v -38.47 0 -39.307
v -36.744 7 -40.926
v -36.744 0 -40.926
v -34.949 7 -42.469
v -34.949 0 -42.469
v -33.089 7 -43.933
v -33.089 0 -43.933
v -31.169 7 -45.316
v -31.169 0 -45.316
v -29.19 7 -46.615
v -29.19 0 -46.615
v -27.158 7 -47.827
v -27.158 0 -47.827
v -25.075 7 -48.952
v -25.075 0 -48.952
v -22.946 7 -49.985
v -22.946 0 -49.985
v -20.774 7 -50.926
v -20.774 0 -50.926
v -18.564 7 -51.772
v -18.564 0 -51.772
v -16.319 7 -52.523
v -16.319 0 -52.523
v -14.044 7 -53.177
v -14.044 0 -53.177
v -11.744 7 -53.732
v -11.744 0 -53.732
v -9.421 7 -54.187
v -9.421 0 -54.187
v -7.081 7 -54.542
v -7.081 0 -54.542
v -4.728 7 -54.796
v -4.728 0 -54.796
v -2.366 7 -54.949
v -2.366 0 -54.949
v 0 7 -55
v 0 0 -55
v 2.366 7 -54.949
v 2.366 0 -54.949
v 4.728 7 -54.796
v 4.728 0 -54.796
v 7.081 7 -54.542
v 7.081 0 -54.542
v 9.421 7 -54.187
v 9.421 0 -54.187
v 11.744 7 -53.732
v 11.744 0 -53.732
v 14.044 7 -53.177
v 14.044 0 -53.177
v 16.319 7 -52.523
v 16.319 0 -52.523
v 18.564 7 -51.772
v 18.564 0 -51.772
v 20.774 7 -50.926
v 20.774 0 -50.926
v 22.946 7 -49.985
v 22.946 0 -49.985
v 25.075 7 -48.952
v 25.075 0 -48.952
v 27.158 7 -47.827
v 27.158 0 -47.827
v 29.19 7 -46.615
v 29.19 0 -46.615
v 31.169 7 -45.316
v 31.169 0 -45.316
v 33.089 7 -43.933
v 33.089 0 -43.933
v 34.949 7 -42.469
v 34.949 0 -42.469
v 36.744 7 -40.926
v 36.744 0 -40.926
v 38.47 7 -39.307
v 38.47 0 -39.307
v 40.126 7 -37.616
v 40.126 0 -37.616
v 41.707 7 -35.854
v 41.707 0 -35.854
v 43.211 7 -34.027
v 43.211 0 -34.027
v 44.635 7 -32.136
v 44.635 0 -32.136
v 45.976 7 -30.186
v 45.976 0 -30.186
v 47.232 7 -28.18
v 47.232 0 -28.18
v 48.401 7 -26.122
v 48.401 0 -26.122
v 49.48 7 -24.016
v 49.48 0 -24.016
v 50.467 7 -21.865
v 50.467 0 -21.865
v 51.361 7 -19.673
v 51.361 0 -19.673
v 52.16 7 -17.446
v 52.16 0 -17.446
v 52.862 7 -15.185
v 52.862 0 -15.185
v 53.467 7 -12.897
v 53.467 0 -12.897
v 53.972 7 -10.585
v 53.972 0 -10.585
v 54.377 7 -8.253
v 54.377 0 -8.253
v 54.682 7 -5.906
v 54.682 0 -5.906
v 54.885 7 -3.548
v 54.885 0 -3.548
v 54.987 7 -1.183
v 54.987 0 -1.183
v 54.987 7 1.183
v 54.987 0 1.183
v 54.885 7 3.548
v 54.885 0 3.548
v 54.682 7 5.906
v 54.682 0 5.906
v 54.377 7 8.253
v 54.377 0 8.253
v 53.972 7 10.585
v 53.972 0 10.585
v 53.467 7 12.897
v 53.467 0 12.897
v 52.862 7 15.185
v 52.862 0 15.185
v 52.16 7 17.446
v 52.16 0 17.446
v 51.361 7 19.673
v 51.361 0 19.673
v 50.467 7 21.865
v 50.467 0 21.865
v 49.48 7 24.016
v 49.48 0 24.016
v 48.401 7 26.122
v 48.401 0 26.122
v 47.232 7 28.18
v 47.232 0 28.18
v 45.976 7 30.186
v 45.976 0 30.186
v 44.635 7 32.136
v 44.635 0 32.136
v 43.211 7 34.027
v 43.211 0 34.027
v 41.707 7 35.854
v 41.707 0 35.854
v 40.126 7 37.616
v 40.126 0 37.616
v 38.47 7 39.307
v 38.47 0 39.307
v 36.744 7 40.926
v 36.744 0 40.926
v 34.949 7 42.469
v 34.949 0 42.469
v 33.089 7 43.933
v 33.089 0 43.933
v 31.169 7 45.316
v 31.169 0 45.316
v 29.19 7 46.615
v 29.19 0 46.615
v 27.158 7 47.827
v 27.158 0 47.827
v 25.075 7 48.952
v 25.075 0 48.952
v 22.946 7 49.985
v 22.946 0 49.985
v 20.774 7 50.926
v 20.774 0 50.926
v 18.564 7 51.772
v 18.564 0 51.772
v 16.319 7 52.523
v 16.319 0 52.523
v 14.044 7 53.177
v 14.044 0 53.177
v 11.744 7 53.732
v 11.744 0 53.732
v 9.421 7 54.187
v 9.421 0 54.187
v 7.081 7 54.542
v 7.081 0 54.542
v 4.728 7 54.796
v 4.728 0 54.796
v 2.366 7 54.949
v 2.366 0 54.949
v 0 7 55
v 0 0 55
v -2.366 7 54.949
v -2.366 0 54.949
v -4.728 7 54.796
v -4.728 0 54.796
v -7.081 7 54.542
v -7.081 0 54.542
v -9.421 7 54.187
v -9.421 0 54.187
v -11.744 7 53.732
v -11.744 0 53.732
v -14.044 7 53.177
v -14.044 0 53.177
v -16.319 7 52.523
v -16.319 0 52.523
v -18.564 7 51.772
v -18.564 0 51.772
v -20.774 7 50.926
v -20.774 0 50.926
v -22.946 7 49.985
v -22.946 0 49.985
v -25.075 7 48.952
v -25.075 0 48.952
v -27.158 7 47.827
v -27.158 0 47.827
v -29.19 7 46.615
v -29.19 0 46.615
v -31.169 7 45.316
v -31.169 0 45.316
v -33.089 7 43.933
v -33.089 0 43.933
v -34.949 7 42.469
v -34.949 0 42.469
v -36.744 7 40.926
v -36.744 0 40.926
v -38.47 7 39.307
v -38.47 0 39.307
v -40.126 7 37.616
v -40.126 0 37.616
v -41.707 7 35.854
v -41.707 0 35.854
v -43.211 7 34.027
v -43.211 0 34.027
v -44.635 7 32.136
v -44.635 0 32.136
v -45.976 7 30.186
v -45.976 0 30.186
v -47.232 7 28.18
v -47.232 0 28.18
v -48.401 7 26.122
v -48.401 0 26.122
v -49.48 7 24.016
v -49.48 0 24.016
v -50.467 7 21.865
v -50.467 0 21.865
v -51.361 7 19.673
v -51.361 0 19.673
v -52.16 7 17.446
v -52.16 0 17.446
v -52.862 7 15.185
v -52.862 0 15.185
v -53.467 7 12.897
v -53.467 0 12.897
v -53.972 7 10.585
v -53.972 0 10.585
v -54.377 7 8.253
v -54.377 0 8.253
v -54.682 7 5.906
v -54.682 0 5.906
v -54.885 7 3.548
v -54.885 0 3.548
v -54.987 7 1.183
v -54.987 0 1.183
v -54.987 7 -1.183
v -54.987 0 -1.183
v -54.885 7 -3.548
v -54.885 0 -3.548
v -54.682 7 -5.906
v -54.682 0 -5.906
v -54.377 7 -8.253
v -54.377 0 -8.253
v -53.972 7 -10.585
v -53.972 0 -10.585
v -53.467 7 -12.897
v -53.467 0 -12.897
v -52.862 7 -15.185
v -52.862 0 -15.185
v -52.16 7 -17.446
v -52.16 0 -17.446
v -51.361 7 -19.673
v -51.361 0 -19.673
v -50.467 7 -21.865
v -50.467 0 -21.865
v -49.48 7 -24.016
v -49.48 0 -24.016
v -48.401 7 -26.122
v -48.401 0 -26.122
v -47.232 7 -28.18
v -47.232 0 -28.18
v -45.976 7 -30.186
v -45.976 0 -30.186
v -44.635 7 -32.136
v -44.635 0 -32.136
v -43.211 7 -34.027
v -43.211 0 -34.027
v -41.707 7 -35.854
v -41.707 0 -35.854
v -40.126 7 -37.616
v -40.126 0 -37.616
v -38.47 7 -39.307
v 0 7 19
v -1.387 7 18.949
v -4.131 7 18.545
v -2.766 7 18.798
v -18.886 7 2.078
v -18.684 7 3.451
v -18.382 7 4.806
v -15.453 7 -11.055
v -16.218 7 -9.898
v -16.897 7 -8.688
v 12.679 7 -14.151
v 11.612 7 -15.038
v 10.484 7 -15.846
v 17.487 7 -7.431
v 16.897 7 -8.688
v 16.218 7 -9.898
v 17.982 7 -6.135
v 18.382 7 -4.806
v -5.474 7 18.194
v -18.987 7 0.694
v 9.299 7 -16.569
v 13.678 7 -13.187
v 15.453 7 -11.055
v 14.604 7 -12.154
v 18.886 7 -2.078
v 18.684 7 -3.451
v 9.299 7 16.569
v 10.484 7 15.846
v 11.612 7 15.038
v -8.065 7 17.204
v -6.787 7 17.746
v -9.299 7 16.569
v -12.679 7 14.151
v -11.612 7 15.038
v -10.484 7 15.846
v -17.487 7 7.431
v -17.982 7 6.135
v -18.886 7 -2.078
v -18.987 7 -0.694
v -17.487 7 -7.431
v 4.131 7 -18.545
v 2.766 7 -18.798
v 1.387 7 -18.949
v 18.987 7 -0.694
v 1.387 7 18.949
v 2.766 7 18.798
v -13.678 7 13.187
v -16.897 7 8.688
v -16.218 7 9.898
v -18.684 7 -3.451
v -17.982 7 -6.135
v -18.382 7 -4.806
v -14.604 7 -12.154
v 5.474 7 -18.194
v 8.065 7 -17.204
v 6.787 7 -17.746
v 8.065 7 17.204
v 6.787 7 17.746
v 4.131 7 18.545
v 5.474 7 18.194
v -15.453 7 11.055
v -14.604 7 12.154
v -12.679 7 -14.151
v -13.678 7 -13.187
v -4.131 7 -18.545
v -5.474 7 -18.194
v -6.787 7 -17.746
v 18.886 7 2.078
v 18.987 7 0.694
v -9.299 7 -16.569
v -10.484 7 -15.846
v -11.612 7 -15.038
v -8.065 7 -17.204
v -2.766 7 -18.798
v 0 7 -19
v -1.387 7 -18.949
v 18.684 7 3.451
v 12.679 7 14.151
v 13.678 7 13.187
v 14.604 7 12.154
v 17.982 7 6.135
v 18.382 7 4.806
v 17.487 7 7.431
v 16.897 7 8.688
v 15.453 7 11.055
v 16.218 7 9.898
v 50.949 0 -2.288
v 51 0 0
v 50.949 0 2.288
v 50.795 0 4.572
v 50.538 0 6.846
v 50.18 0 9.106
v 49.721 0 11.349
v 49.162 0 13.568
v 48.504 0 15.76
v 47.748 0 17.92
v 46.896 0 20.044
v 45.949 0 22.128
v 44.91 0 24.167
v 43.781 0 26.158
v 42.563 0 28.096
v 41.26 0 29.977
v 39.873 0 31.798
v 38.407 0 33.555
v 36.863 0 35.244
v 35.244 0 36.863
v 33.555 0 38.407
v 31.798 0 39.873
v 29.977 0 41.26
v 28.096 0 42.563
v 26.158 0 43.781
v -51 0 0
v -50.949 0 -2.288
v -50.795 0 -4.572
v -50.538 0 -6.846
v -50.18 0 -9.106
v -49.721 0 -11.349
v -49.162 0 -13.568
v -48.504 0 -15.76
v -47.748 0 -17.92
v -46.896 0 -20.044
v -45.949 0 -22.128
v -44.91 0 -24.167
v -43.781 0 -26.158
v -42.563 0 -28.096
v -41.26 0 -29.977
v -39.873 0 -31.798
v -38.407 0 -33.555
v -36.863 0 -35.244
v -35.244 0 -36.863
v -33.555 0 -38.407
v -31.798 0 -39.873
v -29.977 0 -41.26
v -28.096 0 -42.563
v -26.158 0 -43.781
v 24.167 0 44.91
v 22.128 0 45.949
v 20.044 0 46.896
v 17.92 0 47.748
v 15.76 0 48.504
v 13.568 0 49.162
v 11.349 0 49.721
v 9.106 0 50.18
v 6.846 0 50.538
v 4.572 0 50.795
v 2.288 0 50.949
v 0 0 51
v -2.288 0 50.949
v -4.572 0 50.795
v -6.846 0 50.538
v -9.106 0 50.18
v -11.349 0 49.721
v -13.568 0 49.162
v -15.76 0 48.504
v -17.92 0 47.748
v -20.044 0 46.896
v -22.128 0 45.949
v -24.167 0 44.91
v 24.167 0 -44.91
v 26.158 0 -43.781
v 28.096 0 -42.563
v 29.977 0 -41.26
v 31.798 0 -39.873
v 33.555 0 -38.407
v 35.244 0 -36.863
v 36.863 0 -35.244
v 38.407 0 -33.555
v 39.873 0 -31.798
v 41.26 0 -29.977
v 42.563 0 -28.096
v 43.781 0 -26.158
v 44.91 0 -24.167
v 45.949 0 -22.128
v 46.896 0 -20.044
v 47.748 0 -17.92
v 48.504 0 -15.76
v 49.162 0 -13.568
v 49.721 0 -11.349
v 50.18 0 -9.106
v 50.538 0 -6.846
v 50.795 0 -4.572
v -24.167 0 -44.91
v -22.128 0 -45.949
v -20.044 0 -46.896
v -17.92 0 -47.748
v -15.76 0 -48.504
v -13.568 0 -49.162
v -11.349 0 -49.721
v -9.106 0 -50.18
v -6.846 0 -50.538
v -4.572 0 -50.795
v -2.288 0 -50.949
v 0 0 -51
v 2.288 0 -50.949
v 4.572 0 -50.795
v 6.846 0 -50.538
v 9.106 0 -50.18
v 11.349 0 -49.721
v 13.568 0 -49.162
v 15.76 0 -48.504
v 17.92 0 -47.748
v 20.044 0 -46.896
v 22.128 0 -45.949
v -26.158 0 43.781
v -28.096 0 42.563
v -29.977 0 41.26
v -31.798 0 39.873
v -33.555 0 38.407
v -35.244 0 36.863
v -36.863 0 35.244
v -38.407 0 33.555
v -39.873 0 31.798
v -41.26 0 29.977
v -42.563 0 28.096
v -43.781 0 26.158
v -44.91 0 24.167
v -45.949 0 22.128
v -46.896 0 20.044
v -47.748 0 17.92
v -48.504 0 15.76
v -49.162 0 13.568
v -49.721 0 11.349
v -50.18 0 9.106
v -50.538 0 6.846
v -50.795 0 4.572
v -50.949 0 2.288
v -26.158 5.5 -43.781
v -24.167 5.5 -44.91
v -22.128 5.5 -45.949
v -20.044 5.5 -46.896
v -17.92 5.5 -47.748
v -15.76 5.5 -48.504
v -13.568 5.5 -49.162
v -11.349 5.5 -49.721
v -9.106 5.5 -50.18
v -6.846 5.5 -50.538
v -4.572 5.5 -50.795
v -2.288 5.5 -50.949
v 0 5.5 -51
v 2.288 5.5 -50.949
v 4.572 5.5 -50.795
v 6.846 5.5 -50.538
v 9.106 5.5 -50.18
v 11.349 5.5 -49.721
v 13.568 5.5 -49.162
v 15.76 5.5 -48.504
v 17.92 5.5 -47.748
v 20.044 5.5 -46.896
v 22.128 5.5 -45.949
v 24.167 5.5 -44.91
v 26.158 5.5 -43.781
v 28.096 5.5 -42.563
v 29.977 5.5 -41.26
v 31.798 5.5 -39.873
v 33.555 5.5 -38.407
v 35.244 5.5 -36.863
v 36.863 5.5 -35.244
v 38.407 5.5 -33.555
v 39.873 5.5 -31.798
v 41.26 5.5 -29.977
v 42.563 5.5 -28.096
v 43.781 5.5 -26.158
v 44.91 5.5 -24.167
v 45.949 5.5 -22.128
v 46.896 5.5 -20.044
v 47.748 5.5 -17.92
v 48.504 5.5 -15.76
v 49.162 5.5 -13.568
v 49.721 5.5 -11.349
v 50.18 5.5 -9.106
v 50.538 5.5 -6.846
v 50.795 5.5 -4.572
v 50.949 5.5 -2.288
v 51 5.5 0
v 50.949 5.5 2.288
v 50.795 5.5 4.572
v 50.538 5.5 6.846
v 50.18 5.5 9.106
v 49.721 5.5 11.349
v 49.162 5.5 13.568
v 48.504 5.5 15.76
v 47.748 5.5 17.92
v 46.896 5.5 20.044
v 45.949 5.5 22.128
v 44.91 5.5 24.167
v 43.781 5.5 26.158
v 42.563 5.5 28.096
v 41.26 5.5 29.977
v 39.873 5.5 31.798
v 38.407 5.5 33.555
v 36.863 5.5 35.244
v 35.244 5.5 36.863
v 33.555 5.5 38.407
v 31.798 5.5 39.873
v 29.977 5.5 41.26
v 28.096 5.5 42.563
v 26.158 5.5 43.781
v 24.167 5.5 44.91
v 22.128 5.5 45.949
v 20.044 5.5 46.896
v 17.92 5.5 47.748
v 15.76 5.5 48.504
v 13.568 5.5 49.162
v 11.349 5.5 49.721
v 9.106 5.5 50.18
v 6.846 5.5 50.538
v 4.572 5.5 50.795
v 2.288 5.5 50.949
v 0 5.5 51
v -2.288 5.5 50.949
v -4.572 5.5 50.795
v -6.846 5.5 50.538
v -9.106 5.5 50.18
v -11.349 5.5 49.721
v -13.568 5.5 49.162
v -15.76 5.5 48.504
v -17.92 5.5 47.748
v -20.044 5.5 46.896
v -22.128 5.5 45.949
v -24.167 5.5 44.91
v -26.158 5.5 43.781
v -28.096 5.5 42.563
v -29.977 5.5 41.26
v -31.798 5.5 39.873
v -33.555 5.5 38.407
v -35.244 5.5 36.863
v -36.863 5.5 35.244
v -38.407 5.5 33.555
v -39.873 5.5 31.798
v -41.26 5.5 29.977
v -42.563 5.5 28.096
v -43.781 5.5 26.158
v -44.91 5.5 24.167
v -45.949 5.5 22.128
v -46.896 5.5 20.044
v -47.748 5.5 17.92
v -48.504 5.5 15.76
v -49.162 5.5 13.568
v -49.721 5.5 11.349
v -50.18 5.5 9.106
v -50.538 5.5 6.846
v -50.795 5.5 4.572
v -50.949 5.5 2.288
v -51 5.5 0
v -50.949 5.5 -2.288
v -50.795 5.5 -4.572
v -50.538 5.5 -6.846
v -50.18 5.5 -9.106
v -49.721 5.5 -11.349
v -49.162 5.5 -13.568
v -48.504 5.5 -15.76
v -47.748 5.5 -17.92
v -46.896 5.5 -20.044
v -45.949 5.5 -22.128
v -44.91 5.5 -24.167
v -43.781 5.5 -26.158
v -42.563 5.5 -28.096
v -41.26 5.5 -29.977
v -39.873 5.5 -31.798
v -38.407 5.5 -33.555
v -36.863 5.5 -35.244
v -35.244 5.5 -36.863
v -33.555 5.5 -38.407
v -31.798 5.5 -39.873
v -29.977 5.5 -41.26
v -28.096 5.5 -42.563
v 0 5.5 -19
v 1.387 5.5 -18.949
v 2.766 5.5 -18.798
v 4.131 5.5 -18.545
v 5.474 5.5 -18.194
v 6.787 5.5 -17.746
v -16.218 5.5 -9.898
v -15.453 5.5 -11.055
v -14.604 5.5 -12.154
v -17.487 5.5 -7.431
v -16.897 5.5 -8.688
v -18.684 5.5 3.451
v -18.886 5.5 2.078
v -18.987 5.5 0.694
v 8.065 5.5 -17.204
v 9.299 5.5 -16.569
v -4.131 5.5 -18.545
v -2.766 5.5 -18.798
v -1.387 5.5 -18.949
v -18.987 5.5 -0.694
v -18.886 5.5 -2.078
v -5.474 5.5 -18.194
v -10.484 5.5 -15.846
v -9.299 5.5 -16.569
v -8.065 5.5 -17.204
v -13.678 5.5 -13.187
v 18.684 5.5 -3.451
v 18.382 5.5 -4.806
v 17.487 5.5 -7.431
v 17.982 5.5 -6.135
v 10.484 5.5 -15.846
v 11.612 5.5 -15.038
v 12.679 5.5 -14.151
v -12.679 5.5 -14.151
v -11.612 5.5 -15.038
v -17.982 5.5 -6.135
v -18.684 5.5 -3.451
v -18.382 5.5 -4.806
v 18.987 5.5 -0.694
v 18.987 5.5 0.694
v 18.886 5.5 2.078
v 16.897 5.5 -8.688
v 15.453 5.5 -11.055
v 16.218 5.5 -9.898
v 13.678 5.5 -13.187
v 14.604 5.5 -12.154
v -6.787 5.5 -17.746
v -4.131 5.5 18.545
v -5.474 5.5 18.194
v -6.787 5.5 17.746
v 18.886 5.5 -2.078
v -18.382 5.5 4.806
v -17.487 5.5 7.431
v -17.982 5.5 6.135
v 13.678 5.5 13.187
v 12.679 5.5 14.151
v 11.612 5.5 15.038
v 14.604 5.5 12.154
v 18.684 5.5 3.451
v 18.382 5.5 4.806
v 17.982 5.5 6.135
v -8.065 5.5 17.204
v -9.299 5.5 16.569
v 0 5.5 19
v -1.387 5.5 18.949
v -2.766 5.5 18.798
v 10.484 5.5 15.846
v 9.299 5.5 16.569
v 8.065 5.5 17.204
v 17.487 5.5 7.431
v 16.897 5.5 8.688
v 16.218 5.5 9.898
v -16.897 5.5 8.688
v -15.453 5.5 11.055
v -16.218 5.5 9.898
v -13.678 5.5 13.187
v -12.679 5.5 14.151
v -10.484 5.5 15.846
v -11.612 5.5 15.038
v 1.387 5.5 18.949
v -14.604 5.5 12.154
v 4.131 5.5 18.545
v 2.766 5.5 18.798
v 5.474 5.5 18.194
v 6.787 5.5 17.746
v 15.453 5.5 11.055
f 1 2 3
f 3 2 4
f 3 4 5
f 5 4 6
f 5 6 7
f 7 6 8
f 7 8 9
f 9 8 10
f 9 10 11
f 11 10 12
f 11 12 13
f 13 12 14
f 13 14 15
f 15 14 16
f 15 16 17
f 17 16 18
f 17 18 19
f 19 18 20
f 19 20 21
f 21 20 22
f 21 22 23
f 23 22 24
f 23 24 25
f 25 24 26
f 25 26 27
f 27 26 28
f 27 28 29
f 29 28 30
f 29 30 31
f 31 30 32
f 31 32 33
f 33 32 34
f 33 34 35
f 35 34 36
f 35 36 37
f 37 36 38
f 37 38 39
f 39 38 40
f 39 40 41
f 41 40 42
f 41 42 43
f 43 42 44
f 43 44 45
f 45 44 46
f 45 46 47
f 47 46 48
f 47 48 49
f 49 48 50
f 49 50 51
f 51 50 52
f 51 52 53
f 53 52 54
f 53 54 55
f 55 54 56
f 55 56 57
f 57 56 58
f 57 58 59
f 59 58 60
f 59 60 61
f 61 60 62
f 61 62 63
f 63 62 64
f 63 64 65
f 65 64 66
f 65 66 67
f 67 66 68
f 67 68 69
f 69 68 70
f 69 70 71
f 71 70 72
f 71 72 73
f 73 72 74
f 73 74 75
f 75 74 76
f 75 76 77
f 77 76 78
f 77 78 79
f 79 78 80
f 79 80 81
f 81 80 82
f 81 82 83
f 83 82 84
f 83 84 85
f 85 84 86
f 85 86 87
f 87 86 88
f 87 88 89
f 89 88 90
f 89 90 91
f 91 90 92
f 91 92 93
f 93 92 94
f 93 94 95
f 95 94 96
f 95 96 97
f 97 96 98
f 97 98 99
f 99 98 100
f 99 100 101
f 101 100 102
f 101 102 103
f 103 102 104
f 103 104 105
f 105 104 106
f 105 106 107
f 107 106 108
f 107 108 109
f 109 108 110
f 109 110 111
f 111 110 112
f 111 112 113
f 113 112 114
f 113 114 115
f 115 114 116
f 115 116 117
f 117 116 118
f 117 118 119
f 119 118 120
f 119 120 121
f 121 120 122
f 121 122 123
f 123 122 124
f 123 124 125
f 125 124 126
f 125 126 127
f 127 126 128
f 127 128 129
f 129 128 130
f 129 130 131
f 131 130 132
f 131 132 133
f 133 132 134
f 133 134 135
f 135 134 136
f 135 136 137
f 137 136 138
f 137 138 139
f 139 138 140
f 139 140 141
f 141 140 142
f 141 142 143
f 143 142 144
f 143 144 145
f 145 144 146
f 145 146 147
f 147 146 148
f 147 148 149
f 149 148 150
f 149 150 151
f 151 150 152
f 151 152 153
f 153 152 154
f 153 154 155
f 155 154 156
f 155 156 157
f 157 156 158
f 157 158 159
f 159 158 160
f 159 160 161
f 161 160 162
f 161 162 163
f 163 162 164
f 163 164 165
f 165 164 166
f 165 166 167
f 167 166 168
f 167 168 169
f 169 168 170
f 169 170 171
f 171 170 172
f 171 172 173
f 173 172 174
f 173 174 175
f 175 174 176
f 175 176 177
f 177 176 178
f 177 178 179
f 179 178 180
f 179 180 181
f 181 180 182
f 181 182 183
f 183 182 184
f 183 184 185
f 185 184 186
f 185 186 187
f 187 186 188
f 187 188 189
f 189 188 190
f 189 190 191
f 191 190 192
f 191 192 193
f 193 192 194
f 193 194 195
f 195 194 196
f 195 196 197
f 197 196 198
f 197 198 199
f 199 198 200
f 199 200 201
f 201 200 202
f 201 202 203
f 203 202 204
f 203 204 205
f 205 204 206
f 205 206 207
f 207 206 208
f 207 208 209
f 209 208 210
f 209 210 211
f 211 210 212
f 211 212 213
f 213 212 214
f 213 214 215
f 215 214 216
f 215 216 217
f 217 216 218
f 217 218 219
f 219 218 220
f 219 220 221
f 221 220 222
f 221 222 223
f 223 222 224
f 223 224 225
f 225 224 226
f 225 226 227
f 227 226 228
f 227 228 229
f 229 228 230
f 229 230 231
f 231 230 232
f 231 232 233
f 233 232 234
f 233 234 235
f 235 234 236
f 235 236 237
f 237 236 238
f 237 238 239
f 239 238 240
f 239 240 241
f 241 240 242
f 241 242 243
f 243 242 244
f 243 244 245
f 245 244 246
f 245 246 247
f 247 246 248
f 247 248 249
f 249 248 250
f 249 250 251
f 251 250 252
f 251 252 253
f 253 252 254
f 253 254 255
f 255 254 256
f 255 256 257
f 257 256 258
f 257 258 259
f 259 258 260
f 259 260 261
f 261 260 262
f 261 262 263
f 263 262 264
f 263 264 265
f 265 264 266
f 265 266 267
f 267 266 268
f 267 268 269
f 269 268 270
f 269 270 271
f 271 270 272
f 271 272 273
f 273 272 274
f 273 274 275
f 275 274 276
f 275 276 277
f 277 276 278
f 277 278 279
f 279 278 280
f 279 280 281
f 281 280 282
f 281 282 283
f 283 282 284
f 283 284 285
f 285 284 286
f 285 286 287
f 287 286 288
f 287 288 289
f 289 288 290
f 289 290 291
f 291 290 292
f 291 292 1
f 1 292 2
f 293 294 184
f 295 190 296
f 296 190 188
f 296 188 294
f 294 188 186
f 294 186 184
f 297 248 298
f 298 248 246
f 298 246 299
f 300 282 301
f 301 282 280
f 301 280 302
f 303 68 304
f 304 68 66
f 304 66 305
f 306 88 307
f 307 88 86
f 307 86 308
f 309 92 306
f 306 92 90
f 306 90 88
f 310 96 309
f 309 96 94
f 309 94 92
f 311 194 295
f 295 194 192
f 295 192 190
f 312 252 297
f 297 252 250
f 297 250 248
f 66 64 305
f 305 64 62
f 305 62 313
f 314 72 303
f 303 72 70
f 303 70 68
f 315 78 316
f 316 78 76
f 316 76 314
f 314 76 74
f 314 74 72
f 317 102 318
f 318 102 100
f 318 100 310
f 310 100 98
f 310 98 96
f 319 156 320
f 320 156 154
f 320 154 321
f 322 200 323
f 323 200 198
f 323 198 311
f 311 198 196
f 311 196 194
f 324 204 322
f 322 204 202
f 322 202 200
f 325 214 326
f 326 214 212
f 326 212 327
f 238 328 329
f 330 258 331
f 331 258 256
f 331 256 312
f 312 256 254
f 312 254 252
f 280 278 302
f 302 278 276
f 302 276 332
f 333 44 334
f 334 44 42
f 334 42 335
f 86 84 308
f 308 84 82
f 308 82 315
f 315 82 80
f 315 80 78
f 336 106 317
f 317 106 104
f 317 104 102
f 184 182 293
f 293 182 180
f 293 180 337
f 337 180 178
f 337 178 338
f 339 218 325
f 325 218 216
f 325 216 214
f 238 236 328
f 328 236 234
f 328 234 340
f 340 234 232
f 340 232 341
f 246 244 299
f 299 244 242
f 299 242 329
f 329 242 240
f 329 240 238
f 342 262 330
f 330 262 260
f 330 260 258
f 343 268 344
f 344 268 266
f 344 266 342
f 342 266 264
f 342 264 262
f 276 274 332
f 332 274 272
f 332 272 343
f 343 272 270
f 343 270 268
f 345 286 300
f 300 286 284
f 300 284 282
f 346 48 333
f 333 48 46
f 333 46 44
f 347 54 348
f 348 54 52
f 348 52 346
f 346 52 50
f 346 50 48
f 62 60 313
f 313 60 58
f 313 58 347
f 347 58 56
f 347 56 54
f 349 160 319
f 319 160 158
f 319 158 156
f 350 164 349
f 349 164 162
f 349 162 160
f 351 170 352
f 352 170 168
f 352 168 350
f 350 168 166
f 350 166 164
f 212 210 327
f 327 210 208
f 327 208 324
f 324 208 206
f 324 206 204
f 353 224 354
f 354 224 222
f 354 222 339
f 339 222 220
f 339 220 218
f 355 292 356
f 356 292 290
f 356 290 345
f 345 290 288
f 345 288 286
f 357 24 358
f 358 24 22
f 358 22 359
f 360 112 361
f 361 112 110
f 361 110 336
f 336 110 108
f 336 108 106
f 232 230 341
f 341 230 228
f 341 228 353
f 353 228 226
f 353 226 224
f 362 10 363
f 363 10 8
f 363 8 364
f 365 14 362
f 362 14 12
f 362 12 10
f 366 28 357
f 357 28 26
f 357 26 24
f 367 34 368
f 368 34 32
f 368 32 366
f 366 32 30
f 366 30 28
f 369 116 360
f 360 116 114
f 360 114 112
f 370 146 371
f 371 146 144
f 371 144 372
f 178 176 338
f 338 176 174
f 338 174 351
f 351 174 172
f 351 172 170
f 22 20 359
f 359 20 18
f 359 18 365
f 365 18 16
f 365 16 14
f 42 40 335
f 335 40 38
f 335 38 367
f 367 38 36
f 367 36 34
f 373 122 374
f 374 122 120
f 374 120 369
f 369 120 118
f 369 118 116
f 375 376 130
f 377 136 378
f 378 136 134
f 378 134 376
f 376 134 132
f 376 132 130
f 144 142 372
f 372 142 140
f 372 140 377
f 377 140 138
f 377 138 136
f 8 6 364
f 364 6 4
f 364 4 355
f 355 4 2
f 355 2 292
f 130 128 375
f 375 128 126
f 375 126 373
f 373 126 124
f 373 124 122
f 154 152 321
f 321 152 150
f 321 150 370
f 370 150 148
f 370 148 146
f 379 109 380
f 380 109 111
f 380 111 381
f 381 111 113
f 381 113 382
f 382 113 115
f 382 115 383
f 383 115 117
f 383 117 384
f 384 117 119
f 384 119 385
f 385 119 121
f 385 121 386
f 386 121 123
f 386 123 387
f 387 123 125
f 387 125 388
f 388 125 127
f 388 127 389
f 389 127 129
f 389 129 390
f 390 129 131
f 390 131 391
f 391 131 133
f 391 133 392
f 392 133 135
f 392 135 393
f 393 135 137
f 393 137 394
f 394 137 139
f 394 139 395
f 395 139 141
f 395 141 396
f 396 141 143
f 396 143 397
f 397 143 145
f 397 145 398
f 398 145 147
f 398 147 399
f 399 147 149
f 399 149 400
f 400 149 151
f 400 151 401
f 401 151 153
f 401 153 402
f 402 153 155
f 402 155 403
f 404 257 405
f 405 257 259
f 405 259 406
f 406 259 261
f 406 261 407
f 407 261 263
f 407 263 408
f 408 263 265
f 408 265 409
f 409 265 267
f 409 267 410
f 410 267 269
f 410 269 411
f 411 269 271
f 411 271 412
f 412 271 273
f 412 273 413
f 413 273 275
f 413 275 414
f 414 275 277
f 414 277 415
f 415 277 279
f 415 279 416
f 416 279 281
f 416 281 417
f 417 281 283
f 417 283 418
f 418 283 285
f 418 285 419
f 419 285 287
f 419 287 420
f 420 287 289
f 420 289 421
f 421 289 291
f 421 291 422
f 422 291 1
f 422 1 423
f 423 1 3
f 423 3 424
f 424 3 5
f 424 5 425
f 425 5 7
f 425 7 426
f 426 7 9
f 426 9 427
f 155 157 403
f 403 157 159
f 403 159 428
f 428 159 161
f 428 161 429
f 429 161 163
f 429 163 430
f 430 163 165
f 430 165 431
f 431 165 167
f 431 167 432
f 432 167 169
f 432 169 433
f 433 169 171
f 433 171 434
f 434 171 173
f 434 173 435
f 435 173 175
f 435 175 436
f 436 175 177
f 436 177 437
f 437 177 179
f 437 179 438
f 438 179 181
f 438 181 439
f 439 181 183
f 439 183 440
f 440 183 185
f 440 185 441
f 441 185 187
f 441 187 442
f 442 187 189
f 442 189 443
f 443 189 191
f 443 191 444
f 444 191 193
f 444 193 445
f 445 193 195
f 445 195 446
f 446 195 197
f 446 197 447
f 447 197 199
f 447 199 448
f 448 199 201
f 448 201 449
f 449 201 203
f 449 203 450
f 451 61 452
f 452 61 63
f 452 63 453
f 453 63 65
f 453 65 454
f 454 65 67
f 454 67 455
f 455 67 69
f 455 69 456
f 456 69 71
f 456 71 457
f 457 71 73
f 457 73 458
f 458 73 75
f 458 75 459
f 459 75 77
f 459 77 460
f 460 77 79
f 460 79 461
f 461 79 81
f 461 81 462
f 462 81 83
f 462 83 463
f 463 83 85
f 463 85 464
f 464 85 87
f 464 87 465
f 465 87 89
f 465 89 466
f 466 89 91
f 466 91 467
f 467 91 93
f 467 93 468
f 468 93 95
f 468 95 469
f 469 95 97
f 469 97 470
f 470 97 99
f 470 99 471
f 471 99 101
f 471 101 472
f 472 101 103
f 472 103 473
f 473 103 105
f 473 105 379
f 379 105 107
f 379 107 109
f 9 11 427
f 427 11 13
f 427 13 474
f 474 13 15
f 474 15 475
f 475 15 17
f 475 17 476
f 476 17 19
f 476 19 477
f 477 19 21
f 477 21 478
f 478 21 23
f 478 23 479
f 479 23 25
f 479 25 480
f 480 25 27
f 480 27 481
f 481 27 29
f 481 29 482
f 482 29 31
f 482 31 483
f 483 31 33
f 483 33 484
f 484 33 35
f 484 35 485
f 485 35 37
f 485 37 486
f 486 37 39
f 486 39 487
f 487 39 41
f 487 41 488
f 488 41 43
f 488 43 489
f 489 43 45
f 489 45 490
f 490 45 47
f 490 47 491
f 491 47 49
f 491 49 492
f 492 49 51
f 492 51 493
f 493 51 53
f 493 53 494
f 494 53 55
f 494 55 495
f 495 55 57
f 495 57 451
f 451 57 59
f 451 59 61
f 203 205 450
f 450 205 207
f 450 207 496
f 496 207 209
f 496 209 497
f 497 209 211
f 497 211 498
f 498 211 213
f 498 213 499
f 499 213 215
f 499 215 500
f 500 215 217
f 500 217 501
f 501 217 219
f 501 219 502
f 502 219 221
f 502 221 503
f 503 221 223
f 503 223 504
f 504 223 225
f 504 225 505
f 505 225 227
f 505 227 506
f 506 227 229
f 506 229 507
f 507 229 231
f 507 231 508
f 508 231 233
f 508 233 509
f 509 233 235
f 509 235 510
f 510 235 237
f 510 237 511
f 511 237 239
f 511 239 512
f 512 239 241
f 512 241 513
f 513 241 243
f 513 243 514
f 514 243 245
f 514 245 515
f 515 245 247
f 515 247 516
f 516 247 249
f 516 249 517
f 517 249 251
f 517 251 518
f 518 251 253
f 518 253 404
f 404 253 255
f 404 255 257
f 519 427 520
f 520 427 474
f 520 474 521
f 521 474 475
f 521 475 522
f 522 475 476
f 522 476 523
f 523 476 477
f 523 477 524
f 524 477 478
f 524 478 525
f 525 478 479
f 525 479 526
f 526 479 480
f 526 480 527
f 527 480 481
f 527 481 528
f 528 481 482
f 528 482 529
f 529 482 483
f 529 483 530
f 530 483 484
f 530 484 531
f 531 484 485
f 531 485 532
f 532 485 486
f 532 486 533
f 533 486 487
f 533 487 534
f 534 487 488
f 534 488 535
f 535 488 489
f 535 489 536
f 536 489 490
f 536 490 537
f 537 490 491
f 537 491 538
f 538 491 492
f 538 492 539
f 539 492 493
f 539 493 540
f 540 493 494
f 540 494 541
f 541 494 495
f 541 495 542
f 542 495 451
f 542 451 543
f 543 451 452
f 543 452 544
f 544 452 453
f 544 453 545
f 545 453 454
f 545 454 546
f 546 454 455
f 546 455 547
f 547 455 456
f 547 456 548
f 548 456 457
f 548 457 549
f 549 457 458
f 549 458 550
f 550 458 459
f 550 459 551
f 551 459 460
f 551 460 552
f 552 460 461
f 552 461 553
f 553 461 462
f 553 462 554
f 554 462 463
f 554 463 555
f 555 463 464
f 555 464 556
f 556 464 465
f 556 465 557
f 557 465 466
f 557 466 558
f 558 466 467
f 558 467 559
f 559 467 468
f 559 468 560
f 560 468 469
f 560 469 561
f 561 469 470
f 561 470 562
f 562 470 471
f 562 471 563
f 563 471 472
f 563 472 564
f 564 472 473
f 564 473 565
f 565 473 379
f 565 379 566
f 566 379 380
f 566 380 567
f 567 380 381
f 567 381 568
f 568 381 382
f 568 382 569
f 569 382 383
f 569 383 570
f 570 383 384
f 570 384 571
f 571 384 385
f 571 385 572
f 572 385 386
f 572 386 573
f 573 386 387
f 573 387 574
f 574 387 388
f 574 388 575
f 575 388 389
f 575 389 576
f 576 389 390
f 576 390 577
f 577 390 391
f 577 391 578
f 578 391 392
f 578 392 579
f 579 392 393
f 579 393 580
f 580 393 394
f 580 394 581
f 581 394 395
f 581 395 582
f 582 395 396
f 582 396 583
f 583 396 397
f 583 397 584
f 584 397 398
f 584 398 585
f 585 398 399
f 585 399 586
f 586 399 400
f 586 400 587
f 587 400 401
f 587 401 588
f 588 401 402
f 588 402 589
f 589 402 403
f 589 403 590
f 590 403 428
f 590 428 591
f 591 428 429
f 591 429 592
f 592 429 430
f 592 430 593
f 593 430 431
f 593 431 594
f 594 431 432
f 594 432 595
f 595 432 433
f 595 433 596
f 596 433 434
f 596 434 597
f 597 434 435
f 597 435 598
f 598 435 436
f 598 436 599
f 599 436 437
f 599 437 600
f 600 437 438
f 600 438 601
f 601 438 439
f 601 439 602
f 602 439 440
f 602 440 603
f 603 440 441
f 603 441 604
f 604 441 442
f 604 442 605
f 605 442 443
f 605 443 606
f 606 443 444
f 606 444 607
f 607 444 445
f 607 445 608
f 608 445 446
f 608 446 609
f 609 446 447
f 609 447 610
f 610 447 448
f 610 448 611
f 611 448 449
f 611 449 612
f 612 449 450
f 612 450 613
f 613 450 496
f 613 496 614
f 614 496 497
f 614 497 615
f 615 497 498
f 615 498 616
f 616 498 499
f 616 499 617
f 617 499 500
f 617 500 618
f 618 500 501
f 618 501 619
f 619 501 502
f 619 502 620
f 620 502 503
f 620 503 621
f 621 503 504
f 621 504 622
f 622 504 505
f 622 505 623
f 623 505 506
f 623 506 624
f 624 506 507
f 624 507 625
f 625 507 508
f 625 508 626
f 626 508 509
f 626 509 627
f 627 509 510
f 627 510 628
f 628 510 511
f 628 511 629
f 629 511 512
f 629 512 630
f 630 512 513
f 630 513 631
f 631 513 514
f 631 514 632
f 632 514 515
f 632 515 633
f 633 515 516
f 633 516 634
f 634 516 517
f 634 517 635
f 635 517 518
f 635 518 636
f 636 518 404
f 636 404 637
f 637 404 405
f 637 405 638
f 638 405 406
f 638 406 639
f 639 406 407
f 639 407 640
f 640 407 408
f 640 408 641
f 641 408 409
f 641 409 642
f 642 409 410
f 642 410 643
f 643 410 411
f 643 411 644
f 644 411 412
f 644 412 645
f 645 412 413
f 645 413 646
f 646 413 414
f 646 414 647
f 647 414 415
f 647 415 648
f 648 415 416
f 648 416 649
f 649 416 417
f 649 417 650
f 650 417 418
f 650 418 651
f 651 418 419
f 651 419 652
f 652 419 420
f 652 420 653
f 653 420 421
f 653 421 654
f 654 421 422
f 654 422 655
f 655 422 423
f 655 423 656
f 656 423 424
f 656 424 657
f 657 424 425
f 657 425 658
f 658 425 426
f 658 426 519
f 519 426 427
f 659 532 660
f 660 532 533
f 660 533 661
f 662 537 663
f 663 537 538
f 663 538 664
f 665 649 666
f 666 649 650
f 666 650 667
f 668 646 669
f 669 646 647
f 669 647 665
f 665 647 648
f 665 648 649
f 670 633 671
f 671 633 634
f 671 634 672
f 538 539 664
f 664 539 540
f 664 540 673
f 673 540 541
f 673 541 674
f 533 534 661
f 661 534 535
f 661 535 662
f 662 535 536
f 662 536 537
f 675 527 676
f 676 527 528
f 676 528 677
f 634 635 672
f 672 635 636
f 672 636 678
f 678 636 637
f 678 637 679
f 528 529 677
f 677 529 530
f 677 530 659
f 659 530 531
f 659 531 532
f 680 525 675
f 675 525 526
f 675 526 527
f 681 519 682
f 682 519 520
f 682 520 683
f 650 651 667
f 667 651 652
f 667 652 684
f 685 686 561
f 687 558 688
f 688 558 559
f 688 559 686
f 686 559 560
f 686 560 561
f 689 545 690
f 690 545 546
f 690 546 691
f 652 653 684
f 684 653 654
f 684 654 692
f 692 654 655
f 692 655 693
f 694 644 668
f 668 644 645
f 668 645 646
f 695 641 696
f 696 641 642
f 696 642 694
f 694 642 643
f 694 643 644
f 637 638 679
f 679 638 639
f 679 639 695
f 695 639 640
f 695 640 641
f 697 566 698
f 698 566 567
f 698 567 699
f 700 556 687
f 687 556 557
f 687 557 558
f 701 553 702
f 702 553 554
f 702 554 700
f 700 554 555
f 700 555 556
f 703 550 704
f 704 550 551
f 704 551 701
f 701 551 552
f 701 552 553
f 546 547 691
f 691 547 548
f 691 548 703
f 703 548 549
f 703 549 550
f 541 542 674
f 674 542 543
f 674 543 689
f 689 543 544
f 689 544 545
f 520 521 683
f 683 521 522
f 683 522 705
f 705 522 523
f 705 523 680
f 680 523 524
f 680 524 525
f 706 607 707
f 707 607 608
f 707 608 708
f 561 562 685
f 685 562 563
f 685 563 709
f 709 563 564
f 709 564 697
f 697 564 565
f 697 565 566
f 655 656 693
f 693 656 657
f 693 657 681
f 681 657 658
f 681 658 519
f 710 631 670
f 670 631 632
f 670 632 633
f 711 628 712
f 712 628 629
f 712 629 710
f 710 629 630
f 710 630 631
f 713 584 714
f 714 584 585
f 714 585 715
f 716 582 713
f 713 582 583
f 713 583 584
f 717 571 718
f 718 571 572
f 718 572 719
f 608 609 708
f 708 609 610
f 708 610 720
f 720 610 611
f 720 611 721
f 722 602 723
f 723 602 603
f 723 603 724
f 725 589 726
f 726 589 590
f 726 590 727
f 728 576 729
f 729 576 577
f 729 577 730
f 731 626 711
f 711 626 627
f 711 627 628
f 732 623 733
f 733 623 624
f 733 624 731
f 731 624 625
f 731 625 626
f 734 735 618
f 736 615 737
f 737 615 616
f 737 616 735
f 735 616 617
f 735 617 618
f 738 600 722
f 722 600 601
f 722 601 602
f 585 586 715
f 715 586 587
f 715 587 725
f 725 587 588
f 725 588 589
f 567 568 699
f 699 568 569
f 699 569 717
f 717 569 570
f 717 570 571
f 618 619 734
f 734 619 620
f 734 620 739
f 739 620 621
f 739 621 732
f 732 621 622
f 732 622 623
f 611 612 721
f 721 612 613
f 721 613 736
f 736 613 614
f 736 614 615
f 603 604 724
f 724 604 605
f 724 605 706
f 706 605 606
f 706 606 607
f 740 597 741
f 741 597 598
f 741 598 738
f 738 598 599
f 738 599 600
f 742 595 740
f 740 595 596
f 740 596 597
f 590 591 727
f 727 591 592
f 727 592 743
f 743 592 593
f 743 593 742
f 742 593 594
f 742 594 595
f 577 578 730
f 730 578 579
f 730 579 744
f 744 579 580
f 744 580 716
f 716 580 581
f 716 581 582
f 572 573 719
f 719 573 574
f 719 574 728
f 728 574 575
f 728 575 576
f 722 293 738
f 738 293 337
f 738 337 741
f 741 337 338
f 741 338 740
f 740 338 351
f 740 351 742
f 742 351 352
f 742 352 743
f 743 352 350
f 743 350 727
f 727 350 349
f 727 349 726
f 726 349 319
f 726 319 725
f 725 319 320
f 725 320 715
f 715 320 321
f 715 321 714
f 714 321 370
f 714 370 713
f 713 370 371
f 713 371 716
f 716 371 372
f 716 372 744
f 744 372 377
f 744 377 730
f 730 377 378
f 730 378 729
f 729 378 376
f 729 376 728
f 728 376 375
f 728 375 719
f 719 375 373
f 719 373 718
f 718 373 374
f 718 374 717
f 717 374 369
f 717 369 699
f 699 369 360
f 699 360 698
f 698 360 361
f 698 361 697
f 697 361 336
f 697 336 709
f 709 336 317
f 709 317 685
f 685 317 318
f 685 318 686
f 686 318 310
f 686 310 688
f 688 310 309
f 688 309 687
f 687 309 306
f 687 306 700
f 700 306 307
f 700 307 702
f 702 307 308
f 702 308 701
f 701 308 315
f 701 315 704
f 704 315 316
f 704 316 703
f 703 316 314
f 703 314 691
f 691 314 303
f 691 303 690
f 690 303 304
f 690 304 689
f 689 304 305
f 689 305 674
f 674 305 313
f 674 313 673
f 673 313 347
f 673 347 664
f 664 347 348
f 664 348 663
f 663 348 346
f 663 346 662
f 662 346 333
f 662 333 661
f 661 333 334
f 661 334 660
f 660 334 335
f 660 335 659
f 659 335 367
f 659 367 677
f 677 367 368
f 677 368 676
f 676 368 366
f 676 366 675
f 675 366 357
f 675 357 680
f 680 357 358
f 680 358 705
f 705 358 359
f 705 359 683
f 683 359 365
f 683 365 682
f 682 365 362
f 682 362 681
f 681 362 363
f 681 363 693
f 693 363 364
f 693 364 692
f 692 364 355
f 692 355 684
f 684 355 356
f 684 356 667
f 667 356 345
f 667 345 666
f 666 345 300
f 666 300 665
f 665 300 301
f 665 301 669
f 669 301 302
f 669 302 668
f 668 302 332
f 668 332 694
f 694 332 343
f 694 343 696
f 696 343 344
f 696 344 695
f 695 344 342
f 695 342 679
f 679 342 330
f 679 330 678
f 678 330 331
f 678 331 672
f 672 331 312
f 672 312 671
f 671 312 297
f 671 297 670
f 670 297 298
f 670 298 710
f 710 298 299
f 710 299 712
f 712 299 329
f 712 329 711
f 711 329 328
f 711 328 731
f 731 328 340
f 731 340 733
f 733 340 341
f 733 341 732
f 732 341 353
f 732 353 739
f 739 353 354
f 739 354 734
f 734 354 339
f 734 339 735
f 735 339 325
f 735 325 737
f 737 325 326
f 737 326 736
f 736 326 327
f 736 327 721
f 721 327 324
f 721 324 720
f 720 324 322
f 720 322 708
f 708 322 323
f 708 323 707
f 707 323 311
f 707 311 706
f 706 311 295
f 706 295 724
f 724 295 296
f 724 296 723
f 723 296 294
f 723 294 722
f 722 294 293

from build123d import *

# Parameters (mm, degrees)
CROQUIS1_R              = 55
SALIENTE_EXTRUIR1_DEPTH = 7
CROQUIS2_R              = 51
CORTAR_EXTRUIR1_DEPTH   = 5.5
CORTAR_EXTRUIR2_REACH   = 80.096
CROQUIS3_R              = 19


with BuildPart() as part:
    # Croquis1 → Saliente-Extruir1 (new body)
    with BuildSketch(Plane(origin=(0, 0, 0), x_dir=(1, 0, 0), z_dir=(0, 1, 0))):
        with Locations(Location((0, 0, 0), (0, 0, 270))):
            Circle(CROQUIS1_R)
    extrude(amount=SALIENTE_EXTRUIR1_DEPTH)

    # Croquis2 → Cortar-Extruir1 (cut)
    with BuildSketch(Plane.XZ):
        with Locations(Location((0, 0, 0), (0, 0, 270))):
            Circle(CROQUIS2_R)
    extrude(amount=-CORTAR_EXTRUIR1_DEPTH, mode=Mode.SUBTRACT)

    # Croquis3 → Cortar-Extruir2 (cut, up to next)
    with BuildSketch(Plane(origin=(0, 7, 0), x_dir=(1, 0, 0), z_dir=(0, 1, 0)), mode=Mode.PRIVATE) as cortar_extruir2_sk1:
        with Locations(Location((0, 0, 0), (0, 0, 270))):
            Circle(CROQUIS3_R)
    cortar_extruir2_tool1 = extrude(cortar_extruir2_sk1.sketch, amount=-CORTAR_EXTRUIR2_REACH, mode=Mode.PRIVATE) & part.part
    add(cortar_extruir2_tool1.solids().sort_by_distance((0, 7, 0))[0], mode=Mode.SUBTRACT)


solid = part.part
